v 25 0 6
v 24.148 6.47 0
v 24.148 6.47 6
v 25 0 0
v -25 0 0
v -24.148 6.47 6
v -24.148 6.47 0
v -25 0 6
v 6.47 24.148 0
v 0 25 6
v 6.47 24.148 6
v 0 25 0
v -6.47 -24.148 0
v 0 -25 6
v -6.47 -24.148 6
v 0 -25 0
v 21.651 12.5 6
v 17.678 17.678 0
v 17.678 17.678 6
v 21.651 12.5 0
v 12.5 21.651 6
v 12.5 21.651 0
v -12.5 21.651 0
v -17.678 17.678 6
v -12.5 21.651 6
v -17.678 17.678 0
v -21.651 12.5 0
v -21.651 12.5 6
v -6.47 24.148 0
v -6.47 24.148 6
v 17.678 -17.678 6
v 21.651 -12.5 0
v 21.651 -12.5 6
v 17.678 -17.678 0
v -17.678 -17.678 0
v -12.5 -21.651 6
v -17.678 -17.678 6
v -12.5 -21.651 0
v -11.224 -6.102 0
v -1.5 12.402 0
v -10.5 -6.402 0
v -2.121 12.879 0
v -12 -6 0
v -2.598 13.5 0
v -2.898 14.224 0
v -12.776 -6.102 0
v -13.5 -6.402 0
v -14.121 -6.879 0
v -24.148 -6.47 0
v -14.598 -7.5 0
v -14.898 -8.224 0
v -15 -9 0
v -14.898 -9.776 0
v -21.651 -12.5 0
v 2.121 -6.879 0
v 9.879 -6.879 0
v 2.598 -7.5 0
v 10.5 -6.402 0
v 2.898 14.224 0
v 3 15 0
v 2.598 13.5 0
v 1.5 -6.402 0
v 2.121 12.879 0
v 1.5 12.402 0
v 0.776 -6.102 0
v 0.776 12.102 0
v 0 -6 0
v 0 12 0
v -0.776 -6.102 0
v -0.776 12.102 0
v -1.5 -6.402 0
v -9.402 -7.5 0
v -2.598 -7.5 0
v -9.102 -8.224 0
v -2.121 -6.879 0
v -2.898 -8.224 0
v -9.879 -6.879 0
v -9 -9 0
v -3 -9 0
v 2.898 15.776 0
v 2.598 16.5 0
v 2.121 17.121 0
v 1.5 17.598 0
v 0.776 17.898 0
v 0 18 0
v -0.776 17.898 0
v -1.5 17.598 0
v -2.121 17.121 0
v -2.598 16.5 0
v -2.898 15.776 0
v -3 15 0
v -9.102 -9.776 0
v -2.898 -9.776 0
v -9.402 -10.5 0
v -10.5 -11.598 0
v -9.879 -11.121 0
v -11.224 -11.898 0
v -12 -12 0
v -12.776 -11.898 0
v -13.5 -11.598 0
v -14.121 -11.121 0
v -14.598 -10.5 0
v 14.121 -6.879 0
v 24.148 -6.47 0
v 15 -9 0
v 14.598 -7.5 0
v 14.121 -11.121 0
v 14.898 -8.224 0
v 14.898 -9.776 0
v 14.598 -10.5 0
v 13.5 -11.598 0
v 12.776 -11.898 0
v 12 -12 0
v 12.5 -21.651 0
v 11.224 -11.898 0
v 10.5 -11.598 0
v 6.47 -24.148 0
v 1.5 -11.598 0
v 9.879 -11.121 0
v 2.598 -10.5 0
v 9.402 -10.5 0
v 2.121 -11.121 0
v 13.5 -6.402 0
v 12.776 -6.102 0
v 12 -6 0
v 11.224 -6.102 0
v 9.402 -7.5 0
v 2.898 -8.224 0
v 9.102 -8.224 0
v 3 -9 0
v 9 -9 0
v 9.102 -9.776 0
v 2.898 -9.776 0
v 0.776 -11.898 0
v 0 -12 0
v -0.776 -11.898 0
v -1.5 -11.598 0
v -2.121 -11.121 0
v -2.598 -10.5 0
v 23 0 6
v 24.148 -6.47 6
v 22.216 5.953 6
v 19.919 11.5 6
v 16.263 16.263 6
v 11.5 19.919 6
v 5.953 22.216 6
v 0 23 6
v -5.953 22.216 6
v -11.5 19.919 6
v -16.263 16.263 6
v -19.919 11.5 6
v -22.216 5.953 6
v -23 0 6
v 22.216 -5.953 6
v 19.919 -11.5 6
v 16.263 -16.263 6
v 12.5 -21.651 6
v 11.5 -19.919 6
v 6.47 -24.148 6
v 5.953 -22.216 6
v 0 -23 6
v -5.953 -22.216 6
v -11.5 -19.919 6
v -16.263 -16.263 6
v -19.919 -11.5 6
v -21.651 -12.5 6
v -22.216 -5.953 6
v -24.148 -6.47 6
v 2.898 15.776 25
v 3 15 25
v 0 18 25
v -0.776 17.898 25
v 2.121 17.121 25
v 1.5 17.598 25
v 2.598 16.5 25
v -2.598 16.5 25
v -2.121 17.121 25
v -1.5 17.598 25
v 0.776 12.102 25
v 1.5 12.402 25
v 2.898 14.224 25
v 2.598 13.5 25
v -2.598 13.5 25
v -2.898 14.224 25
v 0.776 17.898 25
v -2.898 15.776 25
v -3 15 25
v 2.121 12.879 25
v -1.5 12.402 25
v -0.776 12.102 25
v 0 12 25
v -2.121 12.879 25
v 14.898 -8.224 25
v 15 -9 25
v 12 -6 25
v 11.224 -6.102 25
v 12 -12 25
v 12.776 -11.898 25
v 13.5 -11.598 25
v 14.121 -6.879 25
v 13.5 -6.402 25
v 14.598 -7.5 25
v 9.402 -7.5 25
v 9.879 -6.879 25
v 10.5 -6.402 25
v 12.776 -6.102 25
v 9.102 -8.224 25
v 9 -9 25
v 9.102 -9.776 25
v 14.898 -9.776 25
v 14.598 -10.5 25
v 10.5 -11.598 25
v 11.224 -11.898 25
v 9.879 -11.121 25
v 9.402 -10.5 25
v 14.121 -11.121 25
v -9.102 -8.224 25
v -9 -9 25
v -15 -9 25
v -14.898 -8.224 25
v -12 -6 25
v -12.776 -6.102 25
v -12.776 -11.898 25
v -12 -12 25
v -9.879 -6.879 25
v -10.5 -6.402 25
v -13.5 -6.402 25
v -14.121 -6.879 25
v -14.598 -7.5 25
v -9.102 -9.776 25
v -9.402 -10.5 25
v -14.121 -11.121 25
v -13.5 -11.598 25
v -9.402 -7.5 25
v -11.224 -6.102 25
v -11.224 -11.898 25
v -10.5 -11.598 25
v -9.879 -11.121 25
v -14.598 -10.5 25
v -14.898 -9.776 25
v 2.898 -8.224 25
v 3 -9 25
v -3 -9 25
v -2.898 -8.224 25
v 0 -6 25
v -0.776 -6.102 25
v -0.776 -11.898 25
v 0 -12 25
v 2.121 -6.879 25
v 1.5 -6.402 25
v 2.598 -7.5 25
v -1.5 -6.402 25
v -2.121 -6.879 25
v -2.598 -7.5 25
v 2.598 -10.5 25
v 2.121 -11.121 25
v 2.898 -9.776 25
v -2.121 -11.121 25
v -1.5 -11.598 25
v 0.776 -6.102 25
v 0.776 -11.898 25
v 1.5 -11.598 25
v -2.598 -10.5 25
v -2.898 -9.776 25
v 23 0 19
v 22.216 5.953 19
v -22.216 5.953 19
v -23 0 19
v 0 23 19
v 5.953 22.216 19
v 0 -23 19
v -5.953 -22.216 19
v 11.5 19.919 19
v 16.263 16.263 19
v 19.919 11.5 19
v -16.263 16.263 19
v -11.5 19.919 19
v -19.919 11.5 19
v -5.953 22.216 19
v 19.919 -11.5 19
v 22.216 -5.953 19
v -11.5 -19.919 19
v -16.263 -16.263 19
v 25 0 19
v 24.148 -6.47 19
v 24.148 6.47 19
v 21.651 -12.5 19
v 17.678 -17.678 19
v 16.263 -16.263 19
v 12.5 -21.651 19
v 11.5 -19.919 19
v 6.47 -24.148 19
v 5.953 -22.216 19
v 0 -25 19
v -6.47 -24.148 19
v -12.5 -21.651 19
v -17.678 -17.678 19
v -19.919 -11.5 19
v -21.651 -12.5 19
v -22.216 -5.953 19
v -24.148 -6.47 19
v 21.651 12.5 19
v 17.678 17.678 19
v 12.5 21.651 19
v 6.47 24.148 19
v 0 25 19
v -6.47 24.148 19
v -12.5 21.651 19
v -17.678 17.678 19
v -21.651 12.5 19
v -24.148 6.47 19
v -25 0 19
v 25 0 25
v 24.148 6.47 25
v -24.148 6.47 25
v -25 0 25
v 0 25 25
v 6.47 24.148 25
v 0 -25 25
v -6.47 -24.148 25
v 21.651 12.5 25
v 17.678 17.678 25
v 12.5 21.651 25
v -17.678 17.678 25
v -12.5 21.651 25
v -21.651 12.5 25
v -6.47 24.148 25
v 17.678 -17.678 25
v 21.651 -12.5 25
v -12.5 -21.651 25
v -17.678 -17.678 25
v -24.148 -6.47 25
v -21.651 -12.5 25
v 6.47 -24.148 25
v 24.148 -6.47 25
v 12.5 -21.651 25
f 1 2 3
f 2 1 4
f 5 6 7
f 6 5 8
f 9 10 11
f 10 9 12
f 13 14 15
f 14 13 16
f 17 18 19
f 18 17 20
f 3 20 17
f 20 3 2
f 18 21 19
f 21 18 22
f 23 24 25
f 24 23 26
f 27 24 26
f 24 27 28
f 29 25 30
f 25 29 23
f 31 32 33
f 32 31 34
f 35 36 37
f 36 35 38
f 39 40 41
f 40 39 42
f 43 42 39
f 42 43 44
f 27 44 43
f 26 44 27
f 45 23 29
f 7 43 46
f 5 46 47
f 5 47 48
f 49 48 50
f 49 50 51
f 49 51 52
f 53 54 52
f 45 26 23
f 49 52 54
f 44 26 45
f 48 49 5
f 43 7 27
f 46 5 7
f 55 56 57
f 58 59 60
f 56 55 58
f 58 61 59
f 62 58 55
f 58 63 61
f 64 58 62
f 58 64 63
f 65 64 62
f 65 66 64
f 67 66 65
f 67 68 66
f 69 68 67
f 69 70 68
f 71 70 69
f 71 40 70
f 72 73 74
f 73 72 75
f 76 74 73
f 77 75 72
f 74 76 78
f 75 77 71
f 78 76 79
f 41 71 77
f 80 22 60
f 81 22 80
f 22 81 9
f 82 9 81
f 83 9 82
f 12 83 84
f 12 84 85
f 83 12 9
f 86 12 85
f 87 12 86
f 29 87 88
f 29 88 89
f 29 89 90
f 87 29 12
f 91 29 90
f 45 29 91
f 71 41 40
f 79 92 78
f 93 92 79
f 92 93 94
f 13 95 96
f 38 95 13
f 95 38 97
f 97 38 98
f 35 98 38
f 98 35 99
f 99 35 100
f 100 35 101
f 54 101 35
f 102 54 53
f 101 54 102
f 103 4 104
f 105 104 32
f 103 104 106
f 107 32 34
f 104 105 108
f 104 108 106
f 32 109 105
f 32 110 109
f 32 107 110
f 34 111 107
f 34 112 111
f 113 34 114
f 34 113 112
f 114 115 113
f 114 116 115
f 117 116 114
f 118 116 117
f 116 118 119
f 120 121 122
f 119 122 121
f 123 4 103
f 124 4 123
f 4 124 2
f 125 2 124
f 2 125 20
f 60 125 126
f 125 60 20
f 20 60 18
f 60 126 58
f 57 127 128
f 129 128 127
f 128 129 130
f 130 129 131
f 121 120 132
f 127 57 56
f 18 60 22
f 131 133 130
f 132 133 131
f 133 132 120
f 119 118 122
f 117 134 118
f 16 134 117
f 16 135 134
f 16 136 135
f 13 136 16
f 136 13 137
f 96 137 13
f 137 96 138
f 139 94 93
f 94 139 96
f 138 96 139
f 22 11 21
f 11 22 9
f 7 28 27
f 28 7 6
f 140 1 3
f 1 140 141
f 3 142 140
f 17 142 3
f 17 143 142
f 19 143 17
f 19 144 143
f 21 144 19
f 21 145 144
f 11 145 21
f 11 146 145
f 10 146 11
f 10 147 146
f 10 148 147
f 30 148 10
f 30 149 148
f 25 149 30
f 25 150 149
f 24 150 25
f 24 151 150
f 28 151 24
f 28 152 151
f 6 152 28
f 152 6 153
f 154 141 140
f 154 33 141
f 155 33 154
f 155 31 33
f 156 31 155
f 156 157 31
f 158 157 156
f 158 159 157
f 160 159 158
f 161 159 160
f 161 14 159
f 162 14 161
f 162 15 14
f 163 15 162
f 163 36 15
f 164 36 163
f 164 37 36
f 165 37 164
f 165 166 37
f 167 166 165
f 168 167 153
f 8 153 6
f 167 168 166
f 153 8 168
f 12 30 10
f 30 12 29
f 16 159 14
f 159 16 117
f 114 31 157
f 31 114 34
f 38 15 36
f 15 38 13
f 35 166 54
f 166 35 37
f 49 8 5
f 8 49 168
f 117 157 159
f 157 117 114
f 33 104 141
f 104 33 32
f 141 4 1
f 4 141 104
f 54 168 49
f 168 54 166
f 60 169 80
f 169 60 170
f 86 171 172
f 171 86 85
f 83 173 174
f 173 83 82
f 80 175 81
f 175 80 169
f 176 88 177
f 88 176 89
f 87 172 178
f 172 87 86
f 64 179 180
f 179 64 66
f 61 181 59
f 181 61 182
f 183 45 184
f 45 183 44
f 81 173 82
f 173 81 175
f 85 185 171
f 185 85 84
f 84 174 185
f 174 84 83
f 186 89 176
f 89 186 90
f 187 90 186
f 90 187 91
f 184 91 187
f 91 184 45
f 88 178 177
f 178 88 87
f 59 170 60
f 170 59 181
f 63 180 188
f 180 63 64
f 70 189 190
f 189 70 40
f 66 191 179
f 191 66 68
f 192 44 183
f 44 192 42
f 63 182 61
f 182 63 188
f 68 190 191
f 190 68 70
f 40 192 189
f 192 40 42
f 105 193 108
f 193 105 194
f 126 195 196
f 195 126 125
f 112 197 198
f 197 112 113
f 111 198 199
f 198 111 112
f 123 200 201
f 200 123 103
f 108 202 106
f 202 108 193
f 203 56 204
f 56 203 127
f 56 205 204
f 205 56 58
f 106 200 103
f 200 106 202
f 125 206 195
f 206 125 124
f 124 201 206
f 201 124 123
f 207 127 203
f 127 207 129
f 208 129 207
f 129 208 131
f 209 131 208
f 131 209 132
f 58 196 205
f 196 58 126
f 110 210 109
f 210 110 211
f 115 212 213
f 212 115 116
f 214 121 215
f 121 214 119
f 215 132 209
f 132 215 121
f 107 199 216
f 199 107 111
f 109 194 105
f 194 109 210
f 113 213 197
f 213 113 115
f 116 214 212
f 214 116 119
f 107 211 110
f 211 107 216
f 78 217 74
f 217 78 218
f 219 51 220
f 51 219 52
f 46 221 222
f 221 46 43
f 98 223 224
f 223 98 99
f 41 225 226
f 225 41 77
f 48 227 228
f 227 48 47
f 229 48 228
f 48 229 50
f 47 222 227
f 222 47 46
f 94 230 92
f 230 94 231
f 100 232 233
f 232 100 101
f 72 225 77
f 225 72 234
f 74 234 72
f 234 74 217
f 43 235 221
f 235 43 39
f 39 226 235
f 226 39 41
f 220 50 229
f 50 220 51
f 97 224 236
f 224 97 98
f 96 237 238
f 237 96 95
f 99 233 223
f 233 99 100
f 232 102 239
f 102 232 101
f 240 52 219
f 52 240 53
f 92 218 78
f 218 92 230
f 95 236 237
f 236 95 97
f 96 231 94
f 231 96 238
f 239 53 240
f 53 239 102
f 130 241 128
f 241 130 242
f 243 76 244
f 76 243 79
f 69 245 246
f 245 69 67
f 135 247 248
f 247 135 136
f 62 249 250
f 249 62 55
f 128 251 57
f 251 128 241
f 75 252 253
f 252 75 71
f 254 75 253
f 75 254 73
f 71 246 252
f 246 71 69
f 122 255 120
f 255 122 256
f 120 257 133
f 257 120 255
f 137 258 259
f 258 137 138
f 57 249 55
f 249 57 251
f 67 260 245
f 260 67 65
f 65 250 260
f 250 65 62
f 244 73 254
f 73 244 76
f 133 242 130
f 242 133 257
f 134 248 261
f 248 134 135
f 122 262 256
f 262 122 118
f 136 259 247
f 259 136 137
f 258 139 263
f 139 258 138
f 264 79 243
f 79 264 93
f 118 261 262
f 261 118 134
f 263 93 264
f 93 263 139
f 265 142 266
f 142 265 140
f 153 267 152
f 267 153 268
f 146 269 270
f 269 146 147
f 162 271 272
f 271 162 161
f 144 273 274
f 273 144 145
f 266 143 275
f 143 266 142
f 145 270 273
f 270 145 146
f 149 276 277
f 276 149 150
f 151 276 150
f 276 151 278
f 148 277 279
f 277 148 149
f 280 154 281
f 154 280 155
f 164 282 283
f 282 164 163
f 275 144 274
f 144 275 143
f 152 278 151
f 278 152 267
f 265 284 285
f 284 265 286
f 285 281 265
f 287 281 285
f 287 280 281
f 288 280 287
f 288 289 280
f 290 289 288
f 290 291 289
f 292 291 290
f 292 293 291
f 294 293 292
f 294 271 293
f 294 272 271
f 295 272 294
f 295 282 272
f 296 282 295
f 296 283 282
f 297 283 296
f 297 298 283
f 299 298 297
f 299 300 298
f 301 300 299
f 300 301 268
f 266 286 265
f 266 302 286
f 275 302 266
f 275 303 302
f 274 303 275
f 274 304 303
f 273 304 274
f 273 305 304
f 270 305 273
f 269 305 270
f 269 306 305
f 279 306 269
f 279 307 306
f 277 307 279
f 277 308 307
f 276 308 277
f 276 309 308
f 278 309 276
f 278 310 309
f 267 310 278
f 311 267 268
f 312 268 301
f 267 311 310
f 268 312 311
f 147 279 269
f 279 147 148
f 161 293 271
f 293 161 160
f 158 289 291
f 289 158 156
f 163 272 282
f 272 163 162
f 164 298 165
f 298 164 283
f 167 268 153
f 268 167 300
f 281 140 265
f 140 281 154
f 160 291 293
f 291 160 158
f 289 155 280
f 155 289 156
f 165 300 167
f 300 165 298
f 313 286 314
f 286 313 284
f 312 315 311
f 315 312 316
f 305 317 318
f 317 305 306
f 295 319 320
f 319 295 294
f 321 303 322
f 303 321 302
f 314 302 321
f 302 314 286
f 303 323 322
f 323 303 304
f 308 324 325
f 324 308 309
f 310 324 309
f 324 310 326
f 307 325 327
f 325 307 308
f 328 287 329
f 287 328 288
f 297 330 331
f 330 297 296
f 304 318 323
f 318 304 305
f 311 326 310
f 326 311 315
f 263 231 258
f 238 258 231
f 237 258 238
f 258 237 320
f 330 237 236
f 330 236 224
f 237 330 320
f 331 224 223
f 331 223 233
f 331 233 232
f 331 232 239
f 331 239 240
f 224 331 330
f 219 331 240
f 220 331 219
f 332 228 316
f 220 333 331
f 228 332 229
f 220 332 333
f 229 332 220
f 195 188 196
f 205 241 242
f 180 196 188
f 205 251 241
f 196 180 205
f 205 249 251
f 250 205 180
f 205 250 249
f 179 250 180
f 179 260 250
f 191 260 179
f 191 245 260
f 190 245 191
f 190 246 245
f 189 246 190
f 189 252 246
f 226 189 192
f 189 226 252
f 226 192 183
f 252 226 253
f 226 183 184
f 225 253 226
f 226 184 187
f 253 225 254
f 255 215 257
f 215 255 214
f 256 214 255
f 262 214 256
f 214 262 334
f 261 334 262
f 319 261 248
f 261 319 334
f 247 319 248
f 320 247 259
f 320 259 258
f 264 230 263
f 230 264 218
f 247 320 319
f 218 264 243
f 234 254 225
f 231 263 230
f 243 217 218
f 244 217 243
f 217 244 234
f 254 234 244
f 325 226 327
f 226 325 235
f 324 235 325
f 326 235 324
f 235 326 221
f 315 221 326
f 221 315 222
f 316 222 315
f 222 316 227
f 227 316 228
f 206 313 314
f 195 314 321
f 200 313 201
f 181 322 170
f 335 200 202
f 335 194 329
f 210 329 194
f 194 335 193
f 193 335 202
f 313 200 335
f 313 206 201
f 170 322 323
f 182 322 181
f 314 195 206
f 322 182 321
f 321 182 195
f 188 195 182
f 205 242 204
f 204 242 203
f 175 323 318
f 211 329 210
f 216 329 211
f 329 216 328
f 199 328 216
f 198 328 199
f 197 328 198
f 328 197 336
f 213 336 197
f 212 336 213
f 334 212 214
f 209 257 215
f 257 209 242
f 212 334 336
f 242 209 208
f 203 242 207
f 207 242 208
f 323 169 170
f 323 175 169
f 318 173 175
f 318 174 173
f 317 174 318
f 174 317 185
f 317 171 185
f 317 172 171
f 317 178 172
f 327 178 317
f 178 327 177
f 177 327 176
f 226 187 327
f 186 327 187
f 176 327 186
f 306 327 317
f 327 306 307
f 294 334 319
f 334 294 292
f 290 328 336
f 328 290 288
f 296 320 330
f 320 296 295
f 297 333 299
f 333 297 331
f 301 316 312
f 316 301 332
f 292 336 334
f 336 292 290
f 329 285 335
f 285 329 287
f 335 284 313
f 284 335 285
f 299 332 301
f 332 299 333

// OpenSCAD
include <../main.scad>
$holeflg = false;
$chamfflg = false;

UNIT_S();
